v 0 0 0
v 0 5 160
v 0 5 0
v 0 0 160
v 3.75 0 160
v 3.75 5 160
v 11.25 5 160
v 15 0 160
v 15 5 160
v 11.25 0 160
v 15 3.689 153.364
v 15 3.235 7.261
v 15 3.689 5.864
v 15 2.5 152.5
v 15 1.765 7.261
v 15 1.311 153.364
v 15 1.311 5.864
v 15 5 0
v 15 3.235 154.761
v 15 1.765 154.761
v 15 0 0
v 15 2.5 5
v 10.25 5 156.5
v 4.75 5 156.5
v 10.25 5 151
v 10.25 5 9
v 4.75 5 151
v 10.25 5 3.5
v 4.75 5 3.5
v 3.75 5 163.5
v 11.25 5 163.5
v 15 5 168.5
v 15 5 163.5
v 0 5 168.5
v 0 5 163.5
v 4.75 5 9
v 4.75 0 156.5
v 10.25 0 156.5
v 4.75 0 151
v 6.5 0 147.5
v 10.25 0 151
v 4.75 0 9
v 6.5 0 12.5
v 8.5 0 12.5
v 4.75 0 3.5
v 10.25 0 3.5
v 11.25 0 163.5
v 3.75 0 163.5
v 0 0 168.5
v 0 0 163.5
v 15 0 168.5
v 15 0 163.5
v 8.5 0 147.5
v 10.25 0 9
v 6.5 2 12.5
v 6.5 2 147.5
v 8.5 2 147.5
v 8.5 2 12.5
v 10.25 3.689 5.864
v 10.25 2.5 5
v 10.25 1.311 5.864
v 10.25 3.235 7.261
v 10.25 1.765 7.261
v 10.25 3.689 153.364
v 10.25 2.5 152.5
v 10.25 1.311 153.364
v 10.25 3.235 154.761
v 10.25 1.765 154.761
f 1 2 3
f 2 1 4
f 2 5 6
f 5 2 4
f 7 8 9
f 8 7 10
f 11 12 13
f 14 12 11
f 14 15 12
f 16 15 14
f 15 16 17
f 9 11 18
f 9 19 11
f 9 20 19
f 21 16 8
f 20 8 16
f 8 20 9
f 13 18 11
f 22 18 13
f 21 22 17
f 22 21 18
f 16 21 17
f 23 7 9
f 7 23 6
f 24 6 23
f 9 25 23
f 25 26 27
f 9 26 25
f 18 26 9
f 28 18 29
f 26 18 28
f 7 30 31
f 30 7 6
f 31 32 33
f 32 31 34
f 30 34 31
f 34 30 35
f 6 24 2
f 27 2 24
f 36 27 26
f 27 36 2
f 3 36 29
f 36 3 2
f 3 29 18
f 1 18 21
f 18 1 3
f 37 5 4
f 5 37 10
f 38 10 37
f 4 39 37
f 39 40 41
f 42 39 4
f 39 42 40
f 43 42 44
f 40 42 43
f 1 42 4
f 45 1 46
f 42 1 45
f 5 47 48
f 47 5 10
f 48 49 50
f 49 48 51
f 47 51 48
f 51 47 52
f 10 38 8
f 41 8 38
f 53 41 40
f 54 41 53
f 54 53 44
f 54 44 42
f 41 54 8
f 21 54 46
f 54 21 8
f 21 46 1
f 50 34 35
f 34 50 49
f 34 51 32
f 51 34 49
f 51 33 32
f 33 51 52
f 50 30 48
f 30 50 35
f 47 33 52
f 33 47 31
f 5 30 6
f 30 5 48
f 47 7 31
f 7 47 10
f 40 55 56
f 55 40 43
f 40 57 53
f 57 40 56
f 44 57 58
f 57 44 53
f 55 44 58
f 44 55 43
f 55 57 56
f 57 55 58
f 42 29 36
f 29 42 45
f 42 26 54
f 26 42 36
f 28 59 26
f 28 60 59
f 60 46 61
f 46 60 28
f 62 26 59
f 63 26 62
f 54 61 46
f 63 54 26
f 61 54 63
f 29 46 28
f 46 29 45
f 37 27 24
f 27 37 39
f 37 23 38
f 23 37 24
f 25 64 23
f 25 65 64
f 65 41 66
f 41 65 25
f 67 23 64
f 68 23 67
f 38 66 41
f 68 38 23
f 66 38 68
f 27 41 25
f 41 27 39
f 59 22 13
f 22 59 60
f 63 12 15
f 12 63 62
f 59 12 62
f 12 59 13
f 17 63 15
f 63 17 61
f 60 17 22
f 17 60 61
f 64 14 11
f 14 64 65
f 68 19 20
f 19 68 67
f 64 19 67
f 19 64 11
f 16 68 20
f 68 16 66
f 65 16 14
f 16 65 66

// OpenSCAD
/////////////////////////////////////////////////////////////////////////////////
// Adapter for drilling machine in the embedded lab.
//
// Author:              Maximilian Stiefel
// Last modification:   10.06.2017
/////////////////////////////////////////////////////////////////////////////////

/////////////////////////////////////////////////////////////////////////////////
// Vars
/////////////////////////////////////////////////////////////////////////////////
// Dimesions holder
holder_height = 160;
holder_width = 15;
holder_depth = 5;

// Dimensions notch
notch_height = 135;
notch_width = 2;
notch_depth = 3;

// General allowance
allowance = 0.5;

// Dimensions crossbar
crossbar_height = 5 + allowance;
crossbar_width = 5 + allowance;

// Dimensions lid
lid_thickness = 3;
lid_slot_width = 8;

// Dimensions neck
neck_width = lid_slot_width - allowance;
neck_depth = holder_depth;
neck_height = lid_thickness + allowance;

// Dimensions head 
head_width = holder_width;
head_depth = holder_depth;
head_height = 5;

// Suitable for M3 screw thread
hole_diameter = 2.5;

// Height difference between notch for PCB and the actual holder
height_diff_1 = holder_height - notch_height;

// Width difference between crossbar and holder
width_diff_1 = holder_width - crossbar_width;

// Width difference between holder and neck
width_diff_2 = holder_width - neck_width;

/////////////////////////////////////////////////////////////////////////////////
// Action
/////////////////////////////////////////////////////////////////////////////////
difference()
{
union()
{
	// Cube for the base holder
	cube([holder_width, holder_depth, holder_height], center = false);
	// Head
	translate([0, 0, holder_height + neck_height])
	cube([head_width, head_depth, head_height]);
	// Neck
	translate([width_diff_2/2, 0, holder_height])
	cube([neck_width, neck_depth, neck_height]);
}

union()
{
	// Cube for notch
	translate([holder_width/2 - notch_width/2, -1, height_diff_1/2])
	cube([notch_width, notch_depth, notch_height], center = false);

	// Slots for crossbars
	translate([width_diff_1/2, -1, (1/4)*height_diff_1 - crossbar_height/2])
	cube([crossbar_width, holder_depth + 2, crossbar_height], center = false);
	translate([width_diff_1/2, -1, (3/4)*height_diff_1 + notch_height - crossbar_height/2])
	cube([crossbar_width, holder_depth + 2, crossbar_height], center = false);

	// Drill holes for screws
	translate([holder_width/2, holder_depth/2, (1/4)*height_diff_1])
	rotate([0, 90, 0])
	cylinder(h = 9, r = hole_diameter/2);
	translate([holder_width/2, holder_depth/2,(3/4)*height_diff_1 + notch_height])
	rotate([0, 90, 0])
	cylinder(h = 9, r = hole_diameter/2);
}
}
